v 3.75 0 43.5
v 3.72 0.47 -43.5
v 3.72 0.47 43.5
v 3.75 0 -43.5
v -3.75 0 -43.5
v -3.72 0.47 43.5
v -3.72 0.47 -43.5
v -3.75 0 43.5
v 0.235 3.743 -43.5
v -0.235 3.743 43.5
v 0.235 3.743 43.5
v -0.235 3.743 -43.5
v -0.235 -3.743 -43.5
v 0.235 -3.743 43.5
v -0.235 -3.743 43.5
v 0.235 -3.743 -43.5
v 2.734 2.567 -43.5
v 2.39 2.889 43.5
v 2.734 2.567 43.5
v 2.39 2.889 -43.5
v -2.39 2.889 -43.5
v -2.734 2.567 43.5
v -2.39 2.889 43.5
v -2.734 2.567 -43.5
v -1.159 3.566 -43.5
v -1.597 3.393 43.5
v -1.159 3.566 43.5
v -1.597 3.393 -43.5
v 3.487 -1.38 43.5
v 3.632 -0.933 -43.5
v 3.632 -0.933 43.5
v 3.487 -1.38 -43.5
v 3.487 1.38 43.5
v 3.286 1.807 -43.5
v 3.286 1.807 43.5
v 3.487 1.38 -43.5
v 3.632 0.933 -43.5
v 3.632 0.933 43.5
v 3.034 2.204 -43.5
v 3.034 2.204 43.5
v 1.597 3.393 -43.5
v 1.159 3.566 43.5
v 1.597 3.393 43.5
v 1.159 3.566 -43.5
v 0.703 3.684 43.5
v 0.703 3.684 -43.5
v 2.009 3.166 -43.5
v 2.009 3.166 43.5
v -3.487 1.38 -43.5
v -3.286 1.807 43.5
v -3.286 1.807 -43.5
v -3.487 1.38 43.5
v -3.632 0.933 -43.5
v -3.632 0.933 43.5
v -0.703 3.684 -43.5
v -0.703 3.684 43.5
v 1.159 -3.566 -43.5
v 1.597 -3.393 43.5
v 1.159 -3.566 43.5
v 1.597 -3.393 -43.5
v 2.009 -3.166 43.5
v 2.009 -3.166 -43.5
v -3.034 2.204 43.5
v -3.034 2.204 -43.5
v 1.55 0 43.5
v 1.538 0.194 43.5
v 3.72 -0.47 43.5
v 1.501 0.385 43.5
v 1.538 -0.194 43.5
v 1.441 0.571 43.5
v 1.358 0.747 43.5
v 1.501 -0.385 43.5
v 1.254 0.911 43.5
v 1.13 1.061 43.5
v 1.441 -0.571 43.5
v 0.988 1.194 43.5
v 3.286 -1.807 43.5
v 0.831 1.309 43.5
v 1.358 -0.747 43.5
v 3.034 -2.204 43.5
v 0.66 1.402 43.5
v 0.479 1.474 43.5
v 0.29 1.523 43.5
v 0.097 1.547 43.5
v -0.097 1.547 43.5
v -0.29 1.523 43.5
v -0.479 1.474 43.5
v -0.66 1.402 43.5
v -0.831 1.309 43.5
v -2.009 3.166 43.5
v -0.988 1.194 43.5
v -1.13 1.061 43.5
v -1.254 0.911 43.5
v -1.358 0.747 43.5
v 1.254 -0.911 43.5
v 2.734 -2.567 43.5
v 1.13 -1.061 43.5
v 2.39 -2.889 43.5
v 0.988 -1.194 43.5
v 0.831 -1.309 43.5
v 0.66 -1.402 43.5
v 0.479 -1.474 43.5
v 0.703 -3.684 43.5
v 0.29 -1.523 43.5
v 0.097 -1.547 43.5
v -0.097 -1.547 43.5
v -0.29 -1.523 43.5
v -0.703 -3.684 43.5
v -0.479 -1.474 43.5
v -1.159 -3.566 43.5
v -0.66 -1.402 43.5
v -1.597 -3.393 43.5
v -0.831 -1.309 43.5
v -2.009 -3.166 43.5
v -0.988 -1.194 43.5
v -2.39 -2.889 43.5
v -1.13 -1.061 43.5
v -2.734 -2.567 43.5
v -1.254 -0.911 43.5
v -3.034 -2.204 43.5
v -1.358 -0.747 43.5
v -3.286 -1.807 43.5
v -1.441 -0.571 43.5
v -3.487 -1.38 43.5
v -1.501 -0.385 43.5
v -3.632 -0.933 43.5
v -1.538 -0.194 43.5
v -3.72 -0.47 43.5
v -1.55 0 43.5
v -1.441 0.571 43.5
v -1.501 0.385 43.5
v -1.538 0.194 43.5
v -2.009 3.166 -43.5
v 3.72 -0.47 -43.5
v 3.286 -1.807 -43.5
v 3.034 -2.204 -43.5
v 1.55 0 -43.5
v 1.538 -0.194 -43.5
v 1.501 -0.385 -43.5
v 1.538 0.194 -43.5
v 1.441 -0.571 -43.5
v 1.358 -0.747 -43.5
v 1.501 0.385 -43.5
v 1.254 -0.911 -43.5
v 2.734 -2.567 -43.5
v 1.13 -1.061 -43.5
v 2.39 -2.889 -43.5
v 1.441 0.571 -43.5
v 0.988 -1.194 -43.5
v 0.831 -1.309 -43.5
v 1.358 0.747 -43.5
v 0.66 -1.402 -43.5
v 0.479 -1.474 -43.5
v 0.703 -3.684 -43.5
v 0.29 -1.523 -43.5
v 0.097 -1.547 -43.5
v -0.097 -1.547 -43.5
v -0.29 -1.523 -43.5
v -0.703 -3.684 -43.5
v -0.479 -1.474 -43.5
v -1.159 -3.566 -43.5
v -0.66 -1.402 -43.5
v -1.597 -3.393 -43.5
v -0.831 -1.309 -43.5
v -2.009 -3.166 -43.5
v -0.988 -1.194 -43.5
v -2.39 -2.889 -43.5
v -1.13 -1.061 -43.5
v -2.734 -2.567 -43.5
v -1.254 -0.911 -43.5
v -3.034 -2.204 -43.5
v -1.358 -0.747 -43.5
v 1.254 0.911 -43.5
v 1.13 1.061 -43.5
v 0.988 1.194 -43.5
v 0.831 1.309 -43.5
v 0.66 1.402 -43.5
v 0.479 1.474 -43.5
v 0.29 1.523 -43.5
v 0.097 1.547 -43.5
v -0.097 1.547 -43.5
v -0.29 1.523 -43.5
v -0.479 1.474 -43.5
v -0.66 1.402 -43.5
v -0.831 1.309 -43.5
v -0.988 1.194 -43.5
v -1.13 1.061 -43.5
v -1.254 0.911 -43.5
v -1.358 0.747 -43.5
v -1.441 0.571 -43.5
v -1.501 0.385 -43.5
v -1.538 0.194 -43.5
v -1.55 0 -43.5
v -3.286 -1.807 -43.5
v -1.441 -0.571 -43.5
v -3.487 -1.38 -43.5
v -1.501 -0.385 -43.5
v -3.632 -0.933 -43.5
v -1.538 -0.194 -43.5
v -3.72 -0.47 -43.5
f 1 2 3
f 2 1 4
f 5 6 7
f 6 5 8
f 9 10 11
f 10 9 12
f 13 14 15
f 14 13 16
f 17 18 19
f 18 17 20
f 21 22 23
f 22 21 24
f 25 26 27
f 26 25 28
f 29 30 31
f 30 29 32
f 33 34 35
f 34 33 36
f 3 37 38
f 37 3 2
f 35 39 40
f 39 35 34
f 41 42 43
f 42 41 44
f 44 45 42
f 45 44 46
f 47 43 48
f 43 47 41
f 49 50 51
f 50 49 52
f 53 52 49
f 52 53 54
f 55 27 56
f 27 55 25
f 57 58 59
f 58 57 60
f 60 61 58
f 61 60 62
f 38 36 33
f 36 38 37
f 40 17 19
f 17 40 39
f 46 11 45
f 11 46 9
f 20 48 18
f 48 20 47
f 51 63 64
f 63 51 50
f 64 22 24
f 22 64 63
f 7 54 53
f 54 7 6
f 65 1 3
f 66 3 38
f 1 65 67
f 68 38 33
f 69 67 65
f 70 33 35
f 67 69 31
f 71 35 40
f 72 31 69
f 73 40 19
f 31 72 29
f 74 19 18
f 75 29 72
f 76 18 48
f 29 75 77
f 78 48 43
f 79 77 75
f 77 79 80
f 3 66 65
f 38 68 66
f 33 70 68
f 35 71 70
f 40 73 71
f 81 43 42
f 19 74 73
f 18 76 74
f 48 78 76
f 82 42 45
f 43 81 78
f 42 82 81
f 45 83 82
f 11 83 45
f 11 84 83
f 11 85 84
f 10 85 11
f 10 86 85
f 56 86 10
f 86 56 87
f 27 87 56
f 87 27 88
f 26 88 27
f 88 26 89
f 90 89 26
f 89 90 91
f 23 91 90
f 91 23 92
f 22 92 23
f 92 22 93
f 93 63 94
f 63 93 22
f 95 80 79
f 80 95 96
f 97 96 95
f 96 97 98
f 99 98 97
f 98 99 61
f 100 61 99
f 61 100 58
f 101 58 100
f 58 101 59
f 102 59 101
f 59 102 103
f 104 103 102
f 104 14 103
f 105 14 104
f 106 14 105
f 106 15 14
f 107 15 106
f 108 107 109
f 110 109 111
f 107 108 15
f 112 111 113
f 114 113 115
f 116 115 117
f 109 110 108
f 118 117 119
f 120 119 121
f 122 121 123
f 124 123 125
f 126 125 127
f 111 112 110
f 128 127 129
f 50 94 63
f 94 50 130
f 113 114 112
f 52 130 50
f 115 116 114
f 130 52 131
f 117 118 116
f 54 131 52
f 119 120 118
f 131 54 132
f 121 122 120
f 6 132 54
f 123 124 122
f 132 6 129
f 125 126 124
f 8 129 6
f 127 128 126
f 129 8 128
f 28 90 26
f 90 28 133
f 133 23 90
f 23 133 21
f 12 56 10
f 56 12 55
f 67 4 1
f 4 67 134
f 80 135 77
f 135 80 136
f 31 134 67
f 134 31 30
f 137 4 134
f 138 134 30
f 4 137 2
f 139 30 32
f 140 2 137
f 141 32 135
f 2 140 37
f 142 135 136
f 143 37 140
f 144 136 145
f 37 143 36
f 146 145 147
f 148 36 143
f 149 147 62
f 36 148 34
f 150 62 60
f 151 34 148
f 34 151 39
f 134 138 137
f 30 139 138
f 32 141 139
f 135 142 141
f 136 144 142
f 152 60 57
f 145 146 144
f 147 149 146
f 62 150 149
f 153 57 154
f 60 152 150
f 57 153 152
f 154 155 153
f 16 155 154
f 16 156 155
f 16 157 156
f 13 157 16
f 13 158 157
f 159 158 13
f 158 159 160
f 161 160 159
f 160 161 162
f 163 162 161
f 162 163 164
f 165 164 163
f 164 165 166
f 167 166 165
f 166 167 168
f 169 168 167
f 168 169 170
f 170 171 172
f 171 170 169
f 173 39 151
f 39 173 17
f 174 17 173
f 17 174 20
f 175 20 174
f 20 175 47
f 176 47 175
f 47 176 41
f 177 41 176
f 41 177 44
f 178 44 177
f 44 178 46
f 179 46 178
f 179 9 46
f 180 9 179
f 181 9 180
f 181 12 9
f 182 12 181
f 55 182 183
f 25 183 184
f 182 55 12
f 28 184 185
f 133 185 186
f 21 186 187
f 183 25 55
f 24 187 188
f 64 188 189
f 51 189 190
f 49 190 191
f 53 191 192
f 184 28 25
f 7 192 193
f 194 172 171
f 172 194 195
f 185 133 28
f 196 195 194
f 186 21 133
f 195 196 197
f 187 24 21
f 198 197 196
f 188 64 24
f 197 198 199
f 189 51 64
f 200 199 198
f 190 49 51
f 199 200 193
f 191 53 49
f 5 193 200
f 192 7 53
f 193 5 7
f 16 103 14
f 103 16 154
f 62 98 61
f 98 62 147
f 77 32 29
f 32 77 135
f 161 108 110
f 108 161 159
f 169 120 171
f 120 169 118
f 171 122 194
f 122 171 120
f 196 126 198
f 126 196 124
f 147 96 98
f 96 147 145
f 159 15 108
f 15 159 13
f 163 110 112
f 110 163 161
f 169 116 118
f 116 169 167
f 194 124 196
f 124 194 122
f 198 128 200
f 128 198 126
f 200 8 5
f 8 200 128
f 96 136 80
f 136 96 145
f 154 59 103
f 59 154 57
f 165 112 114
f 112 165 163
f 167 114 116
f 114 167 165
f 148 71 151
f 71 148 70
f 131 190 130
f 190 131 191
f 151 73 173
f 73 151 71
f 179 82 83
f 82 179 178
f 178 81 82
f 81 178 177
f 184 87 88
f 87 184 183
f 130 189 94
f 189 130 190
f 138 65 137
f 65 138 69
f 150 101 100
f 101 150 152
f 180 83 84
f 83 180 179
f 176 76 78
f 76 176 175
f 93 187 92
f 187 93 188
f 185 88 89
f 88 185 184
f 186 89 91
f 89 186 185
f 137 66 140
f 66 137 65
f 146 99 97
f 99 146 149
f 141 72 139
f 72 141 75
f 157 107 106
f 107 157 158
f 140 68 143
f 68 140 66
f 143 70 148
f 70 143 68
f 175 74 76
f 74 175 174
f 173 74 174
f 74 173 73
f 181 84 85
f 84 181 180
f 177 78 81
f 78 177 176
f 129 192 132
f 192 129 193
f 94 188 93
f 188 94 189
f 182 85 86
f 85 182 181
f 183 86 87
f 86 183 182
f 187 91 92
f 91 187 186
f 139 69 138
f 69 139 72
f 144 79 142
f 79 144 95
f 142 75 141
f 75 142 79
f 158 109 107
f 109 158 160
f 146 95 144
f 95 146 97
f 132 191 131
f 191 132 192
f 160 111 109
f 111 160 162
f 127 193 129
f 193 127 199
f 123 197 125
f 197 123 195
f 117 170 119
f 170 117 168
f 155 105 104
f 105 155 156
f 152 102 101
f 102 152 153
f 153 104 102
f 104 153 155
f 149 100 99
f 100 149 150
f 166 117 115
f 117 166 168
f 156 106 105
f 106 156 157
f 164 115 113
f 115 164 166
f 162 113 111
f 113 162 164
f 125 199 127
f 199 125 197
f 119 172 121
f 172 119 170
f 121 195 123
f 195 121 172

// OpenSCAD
$fn = 50;


difference() {
	union() {
		translate(v = [0, 0, -43.5000000000]) {
			cylinder(h = 87, r = 3.7500000000);
		}
	}
	union() {
		translate(v = [0, 0, -100.0000000000]) {
			cylinder(h = 200, r = 1.5500000000);
		}
	}
}
